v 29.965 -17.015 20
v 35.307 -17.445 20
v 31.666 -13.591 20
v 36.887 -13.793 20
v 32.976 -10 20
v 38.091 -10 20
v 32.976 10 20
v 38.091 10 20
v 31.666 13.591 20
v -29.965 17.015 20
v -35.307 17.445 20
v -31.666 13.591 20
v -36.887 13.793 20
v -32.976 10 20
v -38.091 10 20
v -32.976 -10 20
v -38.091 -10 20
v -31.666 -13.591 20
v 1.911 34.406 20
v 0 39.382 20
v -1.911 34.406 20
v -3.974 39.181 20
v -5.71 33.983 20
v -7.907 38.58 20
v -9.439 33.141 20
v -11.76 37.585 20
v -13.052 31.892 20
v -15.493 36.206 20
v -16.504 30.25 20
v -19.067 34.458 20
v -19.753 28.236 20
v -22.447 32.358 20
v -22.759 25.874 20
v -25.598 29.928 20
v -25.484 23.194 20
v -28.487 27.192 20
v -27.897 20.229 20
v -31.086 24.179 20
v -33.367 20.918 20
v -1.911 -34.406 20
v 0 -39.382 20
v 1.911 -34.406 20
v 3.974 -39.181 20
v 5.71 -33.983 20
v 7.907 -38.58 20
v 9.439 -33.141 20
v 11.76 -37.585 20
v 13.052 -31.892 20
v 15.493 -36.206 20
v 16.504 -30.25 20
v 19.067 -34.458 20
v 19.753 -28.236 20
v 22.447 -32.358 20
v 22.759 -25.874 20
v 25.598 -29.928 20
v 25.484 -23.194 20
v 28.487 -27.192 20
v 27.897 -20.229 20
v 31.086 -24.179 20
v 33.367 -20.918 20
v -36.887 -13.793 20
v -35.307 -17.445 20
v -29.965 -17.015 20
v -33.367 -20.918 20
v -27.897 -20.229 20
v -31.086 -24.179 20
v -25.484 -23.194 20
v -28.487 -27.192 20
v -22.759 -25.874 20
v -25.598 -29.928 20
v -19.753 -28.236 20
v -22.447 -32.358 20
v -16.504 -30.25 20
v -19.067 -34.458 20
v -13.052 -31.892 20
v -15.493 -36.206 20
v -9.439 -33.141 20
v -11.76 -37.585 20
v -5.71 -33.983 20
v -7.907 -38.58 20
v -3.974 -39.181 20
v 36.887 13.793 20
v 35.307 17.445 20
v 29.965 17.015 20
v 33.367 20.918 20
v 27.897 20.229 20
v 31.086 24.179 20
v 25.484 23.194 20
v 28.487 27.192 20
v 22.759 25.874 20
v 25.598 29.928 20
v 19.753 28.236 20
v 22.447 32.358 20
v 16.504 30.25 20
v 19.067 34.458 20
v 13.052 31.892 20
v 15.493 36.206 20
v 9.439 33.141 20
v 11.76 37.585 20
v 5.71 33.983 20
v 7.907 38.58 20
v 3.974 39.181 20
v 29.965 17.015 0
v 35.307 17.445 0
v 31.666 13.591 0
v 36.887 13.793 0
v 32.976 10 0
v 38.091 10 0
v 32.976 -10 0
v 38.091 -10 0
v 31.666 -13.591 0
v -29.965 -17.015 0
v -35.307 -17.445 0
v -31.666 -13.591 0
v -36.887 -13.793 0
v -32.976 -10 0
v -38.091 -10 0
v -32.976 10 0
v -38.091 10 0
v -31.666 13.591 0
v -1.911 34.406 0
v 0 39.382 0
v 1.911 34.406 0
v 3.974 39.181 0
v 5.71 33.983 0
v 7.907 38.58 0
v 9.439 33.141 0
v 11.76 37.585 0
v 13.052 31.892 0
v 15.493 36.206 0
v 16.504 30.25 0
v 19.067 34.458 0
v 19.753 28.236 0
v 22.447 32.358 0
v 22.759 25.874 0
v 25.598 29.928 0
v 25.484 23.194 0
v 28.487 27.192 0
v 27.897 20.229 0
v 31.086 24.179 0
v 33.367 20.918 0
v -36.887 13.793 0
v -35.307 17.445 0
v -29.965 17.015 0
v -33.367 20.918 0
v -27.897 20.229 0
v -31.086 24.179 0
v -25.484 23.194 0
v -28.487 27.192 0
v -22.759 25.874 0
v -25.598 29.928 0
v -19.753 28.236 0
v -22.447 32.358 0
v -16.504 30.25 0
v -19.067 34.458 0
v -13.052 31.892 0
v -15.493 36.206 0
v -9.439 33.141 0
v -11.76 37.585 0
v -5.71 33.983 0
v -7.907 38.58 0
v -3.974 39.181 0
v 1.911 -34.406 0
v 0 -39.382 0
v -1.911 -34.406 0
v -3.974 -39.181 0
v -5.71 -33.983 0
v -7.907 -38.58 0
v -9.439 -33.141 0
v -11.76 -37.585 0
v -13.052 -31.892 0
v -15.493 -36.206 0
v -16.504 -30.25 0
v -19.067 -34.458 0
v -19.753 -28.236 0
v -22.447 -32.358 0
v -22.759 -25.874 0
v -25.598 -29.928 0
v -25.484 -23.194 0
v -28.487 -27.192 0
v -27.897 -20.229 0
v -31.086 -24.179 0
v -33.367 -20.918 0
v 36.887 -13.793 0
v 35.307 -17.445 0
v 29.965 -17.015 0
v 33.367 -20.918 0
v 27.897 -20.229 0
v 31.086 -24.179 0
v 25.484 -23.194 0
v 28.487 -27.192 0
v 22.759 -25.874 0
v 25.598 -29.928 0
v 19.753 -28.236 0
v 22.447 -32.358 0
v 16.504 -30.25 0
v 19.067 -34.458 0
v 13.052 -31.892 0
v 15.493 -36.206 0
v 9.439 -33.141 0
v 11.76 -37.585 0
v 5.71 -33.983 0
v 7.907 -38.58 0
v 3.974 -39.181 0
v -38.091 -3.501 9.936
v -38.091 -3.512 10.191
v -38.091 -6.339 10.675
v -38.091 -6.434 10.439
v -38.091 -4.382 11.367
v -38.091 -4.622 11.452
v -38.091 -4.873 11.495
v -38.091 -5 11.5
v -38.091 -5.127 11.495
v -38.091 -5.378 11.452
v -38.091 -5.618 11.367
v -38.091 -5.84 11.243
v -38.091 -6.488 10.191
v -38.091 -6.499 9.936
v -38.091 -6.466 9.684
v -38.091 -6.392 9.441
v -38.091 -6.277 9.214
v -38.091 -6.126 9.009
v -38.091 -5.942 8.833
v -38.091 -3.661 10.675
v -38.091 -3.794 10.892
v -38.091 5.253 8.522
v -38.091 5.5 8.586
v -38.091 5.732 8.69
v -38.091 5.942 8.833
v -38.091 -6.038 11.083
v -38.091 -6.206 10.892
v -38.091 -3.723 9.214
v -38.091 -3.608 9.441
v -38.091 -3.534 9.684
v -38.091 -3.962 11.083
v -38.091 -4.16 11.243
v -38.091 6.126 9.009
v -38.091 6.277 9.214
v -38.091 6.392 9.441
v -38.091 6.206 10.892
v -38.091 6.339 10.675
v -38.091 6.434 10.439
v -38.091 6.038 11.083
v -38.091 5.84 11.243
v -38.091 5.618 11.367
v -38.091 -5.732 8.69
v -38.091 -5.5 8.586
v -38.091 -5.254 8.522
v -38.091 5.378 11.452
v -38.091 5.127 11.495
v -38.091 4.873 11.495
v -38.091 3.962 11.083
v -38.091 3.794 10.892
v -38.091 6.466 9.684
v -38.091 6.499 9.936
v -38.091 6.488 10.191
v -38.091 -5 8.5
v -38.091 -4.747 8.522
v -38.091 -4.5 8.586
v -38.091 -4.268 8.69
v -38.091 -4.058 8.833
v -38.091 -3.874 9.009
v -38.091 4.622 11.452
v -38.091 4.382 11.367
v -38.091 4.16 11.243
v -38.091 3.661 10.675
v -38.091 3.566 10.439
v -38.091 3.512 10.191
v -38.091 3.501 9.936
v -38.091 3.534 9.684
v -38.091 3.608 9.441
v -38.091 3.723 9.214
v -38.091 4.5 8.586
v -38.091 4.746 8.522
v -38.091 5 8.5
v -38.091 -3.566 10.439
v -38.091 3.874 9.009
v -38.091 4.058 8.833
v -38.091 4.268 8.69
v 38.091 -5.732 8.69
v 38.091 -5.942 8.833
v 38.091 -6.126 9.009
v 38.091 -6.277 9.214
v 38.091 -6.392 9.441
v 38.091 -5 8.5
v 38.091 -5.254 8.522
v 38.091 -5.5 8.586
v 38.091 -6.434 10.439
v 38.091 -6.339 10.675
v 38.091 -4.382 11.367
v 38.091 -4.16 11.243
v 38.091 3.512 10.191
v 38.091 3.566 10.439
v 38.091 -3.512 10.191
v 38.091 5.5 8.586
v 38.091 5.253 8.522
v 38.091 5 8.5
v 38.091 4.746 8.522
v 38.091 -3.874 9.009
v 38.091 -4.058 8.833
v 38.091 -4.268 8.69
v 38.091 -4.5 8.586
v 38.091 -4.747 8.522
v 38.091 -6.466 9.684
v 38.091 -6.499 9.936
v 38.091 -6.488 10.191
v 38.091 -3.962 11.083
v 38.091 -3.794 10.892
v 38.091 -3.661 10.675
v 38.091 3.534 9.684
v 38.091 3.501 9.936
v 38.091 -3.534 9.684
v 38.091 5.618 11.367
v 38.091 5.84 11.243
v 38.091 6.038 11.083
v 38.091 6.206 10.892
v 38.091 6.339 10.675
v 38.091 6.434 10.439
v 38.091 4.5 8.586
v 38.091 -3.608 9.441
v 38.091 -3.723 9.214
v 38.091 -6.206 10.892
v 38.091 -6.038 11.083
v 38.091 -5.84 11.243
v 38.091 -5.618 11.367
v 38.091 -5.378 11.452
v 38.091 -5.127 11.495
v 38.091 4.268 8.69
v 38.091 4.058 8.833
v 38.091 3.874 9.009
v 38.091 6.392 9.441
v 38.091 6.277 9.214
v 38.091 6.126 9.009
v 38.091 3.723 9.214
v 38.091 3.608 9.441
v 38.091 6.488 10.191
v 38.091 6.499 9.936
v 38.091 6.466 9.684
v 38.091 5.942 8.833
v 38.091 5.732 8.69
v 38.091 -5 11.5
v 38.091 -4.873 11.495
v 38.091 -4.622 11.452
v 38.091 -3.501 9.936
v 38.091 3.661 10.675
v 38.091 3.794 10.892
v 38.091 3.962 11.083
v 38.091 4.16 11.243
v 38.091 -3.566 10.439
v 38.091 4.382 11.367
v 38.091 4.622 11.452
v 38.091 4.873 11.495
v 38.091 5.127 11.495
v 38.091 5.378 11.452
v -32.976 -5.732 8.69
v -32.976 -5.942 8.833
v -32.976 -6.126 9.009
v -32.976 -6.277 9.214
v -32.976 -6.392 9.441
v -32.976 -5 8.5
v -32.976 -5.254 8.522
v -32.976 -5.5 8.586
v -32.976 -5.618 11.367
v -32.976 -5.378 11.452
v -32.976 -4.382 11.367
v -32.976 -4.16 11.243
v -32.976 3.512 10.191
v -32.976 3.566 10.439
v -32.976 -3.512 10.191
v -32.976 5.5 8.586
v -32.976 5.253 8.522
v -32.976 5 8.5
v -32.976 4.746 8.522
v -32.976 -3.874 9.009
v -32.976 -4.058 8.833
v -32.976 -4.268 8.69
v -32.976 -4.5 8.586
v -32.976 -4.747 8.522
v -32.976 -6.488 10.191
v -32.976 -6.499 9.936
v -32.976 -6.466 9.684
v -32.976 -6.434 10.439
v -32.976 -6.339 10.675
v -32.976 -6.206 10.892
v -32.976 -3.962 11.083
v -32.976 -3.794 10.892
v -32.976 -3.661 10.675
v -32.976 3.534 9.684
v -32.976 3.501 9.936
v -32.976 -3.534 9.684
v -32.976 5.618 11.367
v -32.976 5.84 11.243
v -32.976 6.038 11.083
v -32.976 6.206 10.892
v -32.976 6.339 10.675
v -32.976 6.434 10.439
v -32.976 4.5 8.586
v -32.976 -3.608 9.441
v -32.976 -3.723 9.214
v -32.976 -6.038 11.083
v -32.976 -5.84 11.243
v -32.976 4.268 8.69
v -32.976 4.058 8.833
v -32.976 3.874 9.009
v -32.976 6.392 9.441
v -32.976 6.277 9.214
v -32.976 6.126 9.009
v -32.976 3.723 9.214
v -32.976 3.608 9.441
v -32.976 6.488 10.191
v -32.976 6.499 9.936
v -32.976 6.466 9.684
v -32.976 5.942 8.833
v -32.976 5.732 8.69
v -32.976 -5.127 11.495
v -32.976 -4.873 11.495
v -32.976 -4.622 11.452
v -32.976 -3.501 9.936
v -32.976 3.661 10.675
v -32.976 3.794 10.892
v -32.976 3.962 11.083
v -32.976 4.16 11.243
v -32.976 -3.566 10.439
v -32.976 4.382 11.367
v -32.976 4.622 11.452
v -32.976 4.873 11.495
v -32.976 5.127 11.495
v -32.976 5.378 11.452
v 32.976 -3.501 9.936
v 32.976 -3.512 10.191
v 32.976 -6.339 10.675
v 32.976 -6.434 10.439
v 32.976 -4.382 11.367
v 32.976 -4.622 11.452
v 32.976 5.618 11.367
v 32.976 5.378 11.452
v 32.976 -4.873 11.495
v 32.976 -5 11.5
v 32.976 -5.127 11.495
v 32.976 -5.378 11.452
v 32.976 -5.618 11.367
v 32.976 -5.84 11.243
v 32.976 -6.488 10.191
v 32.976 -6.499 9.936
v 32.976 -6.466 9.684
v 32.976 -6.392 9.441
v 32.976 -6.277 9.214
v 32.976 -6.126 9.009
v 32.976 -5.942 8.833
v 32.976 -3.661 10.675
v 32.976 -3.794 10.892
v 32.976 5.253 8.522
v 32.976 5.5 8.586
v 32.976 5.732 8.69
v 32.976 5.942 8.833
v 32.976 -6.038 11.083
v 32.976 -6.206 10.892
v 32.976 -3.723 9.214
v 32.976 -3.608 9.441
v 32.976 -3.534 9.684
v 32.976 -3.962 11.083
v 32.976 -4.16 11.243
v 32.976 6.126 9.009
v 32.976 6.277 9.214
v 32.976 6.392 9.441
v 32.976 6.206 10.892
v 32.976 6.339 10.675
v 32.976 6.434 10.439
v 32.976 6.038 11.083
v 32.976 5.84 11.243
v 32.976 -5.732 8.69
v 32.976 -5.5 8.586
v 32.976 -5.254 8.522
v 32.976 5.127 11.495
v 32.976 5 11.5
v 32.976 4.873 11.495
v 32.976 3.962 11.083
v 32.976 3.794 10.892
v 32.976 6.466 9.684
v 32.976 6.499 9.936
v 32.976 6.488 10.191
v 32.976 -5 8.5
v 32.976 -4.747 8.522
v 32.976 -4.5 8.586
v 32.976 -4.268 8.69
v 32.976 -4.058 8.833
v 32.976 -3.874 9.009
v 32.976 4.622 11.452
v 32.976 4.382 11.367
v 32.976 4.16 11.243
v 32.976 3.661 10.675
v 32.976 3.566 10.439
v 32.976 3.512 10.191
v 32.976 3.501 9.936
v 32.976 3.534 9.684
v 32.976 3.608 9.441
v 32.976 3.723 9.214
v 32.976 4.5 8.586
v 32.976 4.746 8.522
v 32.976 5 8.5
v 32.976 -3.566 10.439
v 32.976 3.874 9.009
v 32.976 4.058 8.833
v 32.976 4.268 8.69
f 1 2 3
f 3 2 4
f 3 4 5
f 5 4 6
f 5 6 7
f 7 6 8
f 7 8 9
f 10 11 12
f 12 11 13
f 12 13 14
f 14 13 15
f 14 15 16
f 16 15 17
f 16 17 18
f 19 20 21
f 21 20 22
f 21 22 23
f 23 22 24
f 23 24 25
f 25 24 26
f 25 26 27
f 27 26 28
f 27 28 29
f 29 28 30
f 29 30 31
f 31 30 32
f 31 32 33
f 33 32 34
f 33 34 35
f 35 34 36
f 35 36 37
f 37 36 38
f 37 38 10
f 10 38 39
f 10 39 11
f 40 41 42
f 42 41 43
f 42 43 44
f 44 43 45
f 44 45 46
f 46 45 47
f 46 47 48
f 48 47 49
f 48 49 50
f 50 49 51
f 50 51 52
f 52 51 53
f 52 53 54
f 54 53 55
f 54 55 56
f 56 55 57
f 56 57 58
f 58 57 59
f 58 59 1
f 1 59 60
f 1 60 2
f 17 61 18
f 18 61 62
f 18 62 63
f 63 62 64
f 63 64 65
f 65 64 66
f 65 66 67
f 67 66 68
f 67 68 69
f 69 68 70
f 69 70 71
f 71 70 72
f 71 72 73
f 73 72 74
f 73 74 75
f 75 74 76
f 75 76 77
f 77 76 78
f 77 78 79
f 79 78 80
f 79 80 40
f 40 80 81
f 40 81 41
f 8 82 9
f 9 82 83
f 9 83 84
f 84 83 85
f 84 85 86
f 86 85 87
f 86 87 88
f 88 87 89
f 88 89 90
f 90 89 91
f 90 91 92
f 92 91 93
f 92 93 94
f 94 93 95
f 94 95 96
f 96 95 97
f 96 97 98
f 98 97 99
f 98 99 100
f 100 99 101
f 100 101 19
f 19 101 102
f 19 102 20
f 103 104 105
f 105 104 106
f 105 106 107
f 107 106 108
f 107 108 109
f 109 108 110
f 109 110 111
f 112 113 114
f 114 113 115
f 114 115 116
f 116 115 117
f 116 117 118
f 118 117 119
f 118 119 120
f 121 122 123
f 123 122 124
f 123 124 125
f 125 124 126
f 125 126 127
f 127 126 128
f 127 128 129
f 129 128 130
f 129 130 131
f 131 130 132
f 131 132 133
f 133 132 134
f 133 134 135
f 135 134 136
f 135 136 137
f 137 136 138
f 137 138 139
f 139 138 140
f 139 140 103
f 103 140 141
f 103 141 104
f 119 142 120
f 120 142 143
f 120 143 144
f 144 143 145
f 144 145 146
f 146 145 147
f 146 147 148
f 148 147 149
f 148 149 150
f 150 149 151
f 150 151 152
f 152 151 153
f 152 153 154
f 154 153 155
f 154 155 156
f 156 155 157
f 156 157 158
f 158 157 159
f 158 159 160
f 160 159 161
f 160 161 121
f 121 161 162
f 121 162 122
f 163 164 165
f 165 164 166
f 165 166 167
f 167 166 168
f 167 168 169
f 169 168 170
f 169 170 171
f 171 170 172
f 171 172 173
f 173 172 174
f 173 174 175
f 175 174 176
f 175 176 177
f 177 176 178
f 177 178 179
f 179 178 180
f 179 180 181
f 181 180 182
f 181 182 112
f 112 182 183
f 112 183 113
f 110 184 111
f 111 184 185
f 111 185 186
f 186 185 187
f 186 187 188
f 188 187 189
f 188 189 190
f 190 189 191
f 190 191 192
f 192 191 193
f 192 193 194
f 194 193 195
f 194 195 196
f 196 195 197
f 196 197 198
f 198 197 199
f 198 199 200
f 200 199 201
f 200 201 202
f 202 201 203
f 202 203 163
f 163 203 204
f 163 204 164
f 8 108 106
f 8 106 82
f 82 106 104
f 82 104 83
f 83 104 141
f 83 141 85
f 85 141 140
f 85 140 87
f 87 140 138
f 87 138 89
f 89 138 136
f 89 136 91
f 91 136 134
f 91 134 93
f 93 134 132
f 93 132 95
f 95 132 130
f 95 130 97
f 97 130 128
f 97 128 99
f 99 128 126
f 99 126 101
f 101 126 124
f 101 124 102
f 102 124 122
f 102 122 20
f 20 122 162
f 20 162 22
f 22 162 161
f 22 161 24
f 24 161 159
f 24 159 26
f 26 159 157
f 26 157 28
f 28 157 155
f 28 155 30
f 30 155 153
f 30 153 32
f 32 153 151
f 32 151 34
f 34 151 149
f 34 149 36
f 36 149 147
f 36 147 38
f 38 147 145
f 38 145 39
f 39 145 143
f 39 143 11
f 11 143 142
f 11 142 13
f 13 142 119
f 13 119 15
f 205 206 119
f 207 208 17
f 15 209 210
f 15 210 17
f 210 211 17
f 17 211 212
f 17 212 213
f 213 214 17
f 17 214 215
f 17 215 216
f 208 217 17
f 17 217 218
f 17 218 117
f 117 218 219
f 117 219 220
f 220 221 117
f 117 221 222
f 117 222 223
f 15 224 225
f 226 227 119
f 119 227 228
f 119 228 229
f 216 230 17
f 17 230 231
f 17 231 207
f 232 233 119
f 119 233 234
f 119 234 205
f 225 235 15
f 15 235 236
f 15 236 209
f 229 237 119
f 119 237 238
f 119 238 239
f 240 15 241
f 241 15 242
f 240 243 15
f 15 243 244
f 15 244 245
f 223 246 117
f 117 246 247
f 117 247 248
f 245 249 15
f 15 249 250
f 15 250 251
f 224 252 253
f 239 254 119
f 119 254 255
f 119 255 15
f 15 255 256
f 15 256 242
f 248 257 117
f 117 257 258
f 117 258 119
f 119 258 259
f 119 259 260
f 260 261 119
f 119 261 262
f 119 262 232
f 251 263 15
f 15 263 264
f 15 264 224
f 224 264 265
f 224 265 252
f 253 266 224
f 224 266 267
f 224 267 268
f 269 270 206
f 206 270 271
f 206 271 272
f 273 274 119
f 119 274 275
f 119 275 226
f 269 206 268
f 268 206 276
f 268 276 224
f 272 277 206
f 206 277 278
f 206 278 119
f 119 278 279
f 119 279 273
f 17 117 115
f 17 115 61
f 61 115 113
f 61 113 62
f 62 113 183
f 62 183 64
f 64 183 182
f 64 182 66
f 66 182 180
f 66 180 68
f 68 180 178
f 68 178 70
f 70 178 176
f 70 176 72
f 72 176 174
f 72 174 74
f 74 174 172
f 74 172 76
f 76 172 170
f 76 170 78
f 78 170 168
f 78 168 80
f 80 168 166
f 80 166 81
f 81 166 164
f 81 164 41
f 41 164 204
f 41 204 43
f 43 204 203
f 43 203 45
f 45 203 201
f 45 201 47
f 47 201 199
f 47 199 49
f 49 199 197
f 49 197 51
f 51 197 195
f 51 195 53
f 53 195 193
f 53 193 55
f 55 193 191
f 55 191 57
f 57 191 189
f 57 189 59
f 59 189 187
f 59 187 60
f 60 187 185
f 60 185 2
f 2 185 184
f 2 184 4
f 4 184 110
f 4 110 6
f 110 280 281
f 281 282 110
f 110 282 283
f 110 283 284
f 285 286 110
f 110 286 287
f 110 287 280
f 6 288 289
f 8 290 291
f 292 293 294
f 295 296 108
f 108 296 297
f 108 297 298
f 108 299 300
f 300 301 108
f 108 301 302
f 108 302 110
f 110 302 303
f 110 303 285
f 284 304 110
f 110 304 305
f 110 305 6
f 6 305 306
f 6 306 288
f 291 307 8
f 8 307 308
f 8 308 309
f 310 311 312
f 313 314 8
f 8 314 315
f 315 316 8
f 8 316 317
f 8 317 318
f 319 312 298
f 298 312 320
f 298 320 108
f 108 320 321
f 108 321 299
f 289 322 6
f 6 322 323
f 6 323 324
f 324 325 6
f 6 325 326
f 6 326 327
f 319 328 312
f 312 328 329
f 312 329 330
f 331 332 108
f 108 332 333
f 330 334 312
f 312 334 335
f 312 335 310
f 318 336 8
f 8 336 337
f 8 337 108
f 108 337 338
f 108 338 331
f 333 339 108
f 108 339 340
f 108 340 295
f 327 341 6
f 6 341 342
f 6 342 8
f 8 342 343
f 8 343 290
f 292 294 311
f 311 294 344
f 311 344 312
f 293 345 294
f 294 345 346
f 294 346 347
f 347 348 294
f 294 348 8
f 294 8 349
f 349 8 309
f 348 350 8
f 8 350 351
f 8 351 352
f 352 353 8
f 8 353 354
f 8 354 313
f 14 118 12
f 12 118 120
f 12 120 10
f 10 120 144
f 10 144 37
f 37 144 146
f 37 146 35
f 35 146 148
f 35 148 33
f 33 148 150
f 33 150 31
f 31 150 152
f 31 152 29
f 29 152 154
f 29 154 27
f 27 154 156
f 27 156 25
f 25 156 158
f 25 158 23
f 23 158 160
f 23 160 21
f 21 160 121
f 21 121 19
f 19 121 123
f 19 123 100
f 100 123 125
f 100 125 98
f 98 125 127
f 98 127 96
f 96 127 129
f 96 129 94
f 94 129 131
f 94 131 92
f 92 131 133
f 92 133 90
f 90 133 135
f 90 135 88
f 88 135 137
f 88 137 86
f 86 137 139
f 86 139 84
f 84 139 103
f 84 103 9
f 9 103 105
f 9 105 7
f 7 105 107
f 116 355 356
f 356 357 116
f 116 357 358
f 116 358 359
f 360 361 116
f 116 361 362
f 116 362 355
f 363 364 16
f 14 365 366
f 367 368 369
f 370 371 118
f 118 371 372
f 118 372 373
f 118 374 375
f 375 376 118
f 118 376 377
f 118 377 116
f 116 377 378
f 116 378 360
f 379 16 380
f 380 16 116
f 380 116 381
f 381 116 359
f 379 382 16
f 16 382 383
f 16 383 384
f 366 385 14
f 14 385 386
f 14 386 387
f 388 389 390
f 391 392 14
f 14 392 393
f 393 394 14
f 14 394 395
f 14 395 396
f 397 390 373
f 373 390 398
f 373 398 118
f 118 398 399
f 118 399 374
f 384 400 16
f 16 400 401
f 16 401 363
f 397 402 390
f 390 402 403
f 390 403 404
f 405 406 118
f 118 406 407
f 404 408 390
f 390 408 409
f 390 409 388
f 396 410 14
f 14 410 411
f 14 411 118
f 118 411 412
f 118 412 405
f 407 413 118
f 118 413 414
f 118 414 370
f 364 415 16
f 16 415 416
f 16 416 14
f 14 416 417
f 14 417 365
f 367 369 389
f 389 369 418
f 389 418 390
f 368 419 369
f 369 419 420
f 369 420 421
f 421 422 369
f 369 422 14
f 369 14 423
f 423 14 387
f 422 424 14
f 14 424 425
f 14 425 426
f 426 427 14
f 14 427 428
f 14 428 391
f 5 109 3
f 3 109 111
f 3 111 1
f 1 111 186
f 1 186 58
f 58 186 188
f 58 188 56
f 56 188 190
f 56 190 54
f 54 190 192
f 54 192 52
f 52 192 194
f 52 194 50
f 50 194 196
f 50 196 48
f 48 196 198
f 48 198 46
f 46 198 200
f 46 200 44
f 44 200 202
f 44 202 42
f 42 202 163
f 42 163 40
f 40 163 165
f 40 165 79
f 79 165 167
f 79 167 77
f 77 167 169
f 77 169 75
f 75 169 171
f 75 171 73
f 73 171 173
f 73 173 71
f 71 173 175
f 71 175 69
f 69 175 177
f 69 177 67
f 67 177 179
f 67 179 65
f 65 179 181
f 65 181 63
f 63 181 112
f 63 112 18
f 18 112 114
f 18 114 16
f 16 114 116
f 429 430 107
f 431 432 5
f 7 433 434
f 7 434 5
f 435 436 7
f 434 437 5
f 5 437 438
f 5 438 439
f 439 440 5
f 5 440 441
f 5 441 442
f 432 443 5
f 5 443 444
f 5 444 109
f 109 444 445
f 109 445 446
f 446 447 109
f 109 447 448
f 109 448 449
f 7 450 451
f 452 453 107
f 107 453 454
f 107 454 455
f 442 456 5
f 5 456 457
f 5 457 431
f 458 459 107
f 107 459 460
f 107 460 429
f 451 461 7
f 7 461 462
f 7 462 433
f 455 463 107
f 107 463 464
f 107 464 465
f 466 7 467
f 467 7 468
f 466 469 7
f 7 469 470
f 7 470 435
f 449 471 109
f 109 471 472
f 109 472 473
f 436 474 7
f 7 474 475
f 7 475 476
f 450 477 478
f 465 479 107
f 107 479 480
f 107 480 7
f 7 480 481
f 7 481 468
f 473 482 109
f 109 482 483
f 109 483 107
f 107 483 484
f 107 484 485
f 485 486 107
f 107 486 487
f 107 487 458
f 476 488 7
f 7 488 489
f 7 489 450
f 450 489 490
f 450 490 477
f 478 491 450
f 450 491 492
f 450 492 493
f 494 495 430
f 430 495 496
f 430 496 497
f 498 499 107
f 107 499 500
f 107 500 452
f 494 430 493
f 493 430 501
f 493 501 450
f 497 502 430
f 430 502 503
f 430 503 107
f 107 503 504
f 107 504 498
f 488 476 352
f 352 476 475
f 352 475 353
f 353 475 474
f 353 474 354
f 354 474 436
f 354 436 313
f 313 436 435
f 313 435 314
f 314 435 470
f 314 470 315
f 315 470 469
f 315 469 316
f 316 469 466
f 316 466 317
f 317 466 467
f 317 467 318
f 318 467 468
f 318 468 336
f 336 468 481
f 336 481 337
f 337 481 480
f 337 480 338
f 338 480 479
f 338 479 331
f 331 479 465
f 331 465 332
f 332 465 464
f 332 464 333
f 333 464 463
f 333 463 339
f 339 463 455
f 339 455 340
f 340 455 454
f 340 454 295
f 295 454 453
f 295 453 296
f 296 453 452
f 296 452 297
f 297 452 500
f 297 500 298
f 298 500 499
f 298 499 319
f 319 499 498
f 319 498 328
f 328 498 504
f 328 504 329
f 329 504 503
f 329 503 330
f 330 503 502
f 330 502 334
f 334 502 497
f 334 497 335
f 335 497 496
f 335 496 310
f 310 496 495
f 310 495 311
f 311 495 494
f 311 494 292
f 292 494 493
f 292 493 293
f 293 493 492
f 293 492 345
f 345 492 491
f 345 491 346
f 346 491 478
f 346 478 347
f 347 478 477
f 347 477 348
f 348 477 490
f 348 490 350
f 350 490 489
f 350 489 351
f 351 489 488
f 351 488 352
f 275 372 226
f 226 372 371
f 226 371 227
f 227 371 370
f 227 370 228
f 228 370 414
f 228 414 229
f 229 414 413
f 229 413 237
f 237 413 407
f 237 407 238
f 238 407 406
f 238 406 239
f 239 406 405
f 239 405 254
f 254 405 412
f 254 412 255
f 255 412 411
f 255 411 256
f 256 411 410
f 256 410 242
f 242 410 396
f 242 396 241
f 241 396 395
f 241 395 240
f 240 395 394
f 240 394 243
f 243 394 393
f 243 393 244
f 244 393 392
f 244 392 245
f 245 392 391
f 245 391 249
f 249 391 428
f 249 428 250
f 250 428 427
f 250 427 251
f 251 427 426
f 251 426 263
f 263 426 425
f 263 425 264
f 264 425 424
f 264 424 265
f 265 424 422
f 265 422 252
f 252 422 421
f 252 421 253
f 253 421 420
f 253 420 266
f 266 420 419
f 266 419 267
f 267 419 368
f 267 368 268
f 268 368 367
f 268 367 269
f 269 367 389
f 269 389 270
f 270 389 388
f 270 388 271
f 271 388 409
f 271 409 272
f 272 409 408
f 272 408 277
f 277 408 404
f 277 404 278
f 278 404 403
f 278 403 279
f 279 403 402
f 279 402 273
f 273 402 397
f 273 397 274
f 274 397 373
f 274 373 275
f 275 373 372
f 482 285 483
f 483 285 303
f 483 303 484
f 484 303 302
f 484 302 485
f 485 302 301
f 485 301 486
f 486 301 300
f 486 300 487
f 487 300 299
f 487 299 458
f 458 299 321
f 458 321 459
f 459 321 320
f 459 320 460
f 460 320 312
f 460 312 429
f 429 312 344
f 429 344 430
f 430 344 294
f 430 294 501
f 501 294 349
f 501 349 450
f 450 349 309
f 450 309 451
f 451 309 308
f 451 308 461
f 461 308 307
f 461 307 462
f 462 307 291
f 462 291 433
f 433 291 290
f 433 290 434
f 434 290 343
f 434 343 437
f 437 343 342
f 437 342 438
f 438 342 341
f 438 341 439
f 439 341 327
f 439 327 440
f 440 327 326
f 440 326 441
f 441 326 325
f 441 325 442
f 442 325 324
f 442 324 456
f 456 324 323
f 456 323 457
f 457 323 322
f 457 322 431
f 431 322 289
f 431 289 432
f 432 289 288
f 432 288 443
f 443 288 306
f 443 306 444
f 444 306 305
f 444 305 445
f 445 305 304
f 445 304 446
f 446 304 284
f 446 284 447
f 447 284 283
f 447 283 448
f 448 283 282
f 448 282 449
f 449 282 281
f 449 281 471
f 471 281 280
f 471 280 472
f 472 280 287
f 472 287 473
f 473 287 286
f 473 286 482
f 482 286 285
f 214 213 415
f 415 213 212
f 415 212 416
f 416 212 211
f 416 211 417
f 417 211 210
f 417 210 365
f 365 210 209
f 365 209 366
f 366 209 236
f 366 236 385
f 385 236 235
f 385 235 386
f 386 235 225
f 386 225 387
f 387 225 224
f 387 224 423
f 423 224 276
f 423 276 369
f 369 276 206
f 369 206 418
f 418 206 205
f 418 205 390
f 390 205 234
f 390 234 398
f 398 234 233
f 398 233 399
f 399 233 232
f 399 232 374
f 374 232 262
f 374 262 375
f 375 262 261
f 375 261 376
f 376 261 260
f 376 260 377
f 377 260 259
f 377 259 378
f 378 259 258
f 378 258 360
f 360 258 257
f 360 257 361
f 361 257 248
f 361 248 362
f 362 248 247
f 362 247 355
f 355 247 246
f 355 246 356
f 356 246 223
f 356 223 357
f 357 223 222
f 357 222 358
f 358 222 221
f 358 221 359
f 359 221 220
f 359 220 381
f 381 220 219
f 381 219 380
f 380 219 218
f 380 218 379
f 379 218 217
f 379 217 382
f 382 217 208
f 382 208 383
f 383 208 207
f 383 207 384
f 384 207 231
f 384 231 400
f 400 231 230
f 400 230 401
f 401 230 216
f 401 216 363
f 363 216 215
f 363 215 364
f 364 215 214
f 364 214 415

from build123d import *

# Parameters (mm, degrees)
BOSS_EXTRUDE1_DEPTH = 20
SKETCH3_R           = 1.5
CUT_EXTRUDE2_DEPTH  = 77.182012842


with BuildPart() as part:
    # Sketch1 → Boss-Extrude1 (new body)
    with BuildSketch(Plane.XY):
        with BuildLine():
            Line((38.091006421, 10), (38.091006421, -10))
            ThreePointArc((38.091006421, -10), (0, -39.381782212), (-38.091006421, -10))
            Line((-38.091006421, -10), (-38.091006421, 10))
            ThreePointArc((-38.091006421, 10), (0, 39.381782212), (38.091006421, 10))
        make_face()
        with BuildLine():
            Line((-32.976154675, 10), (-32.976154675, -10))
            ThreePointArc((-32.976154675, -10), (0, -34.459059435), (32.976154675, -10))
            Line((32.976154675, -10), (32.976154675, 10))
            ThreePointArc((32.976154675, 10), (0, 34.459059435), (-32.976154675, 10))
        make_face(mode=Mode.SUBTRACT)
    extrude(amount=BOSS_EXTRUDE1_DEPTH)

    # Sketch3 → Cut-Extrude2 (cut, through all)
    with BuildSketch(Plane(origin=(38.091006421, 0, 0), x_dir=(0, 0, -1), z_dir=(1, 0, 0))):
        with Locations((-10, 5)):
            Circle(SKETCH3_R)
        with Locations((-10, -5)):
            Circle(SKETCH3_R)
    extrude(amount=-CUT_EXTRUDE2_DEPTH, mode=Mode.SUBTRACT)


solid = part.part
